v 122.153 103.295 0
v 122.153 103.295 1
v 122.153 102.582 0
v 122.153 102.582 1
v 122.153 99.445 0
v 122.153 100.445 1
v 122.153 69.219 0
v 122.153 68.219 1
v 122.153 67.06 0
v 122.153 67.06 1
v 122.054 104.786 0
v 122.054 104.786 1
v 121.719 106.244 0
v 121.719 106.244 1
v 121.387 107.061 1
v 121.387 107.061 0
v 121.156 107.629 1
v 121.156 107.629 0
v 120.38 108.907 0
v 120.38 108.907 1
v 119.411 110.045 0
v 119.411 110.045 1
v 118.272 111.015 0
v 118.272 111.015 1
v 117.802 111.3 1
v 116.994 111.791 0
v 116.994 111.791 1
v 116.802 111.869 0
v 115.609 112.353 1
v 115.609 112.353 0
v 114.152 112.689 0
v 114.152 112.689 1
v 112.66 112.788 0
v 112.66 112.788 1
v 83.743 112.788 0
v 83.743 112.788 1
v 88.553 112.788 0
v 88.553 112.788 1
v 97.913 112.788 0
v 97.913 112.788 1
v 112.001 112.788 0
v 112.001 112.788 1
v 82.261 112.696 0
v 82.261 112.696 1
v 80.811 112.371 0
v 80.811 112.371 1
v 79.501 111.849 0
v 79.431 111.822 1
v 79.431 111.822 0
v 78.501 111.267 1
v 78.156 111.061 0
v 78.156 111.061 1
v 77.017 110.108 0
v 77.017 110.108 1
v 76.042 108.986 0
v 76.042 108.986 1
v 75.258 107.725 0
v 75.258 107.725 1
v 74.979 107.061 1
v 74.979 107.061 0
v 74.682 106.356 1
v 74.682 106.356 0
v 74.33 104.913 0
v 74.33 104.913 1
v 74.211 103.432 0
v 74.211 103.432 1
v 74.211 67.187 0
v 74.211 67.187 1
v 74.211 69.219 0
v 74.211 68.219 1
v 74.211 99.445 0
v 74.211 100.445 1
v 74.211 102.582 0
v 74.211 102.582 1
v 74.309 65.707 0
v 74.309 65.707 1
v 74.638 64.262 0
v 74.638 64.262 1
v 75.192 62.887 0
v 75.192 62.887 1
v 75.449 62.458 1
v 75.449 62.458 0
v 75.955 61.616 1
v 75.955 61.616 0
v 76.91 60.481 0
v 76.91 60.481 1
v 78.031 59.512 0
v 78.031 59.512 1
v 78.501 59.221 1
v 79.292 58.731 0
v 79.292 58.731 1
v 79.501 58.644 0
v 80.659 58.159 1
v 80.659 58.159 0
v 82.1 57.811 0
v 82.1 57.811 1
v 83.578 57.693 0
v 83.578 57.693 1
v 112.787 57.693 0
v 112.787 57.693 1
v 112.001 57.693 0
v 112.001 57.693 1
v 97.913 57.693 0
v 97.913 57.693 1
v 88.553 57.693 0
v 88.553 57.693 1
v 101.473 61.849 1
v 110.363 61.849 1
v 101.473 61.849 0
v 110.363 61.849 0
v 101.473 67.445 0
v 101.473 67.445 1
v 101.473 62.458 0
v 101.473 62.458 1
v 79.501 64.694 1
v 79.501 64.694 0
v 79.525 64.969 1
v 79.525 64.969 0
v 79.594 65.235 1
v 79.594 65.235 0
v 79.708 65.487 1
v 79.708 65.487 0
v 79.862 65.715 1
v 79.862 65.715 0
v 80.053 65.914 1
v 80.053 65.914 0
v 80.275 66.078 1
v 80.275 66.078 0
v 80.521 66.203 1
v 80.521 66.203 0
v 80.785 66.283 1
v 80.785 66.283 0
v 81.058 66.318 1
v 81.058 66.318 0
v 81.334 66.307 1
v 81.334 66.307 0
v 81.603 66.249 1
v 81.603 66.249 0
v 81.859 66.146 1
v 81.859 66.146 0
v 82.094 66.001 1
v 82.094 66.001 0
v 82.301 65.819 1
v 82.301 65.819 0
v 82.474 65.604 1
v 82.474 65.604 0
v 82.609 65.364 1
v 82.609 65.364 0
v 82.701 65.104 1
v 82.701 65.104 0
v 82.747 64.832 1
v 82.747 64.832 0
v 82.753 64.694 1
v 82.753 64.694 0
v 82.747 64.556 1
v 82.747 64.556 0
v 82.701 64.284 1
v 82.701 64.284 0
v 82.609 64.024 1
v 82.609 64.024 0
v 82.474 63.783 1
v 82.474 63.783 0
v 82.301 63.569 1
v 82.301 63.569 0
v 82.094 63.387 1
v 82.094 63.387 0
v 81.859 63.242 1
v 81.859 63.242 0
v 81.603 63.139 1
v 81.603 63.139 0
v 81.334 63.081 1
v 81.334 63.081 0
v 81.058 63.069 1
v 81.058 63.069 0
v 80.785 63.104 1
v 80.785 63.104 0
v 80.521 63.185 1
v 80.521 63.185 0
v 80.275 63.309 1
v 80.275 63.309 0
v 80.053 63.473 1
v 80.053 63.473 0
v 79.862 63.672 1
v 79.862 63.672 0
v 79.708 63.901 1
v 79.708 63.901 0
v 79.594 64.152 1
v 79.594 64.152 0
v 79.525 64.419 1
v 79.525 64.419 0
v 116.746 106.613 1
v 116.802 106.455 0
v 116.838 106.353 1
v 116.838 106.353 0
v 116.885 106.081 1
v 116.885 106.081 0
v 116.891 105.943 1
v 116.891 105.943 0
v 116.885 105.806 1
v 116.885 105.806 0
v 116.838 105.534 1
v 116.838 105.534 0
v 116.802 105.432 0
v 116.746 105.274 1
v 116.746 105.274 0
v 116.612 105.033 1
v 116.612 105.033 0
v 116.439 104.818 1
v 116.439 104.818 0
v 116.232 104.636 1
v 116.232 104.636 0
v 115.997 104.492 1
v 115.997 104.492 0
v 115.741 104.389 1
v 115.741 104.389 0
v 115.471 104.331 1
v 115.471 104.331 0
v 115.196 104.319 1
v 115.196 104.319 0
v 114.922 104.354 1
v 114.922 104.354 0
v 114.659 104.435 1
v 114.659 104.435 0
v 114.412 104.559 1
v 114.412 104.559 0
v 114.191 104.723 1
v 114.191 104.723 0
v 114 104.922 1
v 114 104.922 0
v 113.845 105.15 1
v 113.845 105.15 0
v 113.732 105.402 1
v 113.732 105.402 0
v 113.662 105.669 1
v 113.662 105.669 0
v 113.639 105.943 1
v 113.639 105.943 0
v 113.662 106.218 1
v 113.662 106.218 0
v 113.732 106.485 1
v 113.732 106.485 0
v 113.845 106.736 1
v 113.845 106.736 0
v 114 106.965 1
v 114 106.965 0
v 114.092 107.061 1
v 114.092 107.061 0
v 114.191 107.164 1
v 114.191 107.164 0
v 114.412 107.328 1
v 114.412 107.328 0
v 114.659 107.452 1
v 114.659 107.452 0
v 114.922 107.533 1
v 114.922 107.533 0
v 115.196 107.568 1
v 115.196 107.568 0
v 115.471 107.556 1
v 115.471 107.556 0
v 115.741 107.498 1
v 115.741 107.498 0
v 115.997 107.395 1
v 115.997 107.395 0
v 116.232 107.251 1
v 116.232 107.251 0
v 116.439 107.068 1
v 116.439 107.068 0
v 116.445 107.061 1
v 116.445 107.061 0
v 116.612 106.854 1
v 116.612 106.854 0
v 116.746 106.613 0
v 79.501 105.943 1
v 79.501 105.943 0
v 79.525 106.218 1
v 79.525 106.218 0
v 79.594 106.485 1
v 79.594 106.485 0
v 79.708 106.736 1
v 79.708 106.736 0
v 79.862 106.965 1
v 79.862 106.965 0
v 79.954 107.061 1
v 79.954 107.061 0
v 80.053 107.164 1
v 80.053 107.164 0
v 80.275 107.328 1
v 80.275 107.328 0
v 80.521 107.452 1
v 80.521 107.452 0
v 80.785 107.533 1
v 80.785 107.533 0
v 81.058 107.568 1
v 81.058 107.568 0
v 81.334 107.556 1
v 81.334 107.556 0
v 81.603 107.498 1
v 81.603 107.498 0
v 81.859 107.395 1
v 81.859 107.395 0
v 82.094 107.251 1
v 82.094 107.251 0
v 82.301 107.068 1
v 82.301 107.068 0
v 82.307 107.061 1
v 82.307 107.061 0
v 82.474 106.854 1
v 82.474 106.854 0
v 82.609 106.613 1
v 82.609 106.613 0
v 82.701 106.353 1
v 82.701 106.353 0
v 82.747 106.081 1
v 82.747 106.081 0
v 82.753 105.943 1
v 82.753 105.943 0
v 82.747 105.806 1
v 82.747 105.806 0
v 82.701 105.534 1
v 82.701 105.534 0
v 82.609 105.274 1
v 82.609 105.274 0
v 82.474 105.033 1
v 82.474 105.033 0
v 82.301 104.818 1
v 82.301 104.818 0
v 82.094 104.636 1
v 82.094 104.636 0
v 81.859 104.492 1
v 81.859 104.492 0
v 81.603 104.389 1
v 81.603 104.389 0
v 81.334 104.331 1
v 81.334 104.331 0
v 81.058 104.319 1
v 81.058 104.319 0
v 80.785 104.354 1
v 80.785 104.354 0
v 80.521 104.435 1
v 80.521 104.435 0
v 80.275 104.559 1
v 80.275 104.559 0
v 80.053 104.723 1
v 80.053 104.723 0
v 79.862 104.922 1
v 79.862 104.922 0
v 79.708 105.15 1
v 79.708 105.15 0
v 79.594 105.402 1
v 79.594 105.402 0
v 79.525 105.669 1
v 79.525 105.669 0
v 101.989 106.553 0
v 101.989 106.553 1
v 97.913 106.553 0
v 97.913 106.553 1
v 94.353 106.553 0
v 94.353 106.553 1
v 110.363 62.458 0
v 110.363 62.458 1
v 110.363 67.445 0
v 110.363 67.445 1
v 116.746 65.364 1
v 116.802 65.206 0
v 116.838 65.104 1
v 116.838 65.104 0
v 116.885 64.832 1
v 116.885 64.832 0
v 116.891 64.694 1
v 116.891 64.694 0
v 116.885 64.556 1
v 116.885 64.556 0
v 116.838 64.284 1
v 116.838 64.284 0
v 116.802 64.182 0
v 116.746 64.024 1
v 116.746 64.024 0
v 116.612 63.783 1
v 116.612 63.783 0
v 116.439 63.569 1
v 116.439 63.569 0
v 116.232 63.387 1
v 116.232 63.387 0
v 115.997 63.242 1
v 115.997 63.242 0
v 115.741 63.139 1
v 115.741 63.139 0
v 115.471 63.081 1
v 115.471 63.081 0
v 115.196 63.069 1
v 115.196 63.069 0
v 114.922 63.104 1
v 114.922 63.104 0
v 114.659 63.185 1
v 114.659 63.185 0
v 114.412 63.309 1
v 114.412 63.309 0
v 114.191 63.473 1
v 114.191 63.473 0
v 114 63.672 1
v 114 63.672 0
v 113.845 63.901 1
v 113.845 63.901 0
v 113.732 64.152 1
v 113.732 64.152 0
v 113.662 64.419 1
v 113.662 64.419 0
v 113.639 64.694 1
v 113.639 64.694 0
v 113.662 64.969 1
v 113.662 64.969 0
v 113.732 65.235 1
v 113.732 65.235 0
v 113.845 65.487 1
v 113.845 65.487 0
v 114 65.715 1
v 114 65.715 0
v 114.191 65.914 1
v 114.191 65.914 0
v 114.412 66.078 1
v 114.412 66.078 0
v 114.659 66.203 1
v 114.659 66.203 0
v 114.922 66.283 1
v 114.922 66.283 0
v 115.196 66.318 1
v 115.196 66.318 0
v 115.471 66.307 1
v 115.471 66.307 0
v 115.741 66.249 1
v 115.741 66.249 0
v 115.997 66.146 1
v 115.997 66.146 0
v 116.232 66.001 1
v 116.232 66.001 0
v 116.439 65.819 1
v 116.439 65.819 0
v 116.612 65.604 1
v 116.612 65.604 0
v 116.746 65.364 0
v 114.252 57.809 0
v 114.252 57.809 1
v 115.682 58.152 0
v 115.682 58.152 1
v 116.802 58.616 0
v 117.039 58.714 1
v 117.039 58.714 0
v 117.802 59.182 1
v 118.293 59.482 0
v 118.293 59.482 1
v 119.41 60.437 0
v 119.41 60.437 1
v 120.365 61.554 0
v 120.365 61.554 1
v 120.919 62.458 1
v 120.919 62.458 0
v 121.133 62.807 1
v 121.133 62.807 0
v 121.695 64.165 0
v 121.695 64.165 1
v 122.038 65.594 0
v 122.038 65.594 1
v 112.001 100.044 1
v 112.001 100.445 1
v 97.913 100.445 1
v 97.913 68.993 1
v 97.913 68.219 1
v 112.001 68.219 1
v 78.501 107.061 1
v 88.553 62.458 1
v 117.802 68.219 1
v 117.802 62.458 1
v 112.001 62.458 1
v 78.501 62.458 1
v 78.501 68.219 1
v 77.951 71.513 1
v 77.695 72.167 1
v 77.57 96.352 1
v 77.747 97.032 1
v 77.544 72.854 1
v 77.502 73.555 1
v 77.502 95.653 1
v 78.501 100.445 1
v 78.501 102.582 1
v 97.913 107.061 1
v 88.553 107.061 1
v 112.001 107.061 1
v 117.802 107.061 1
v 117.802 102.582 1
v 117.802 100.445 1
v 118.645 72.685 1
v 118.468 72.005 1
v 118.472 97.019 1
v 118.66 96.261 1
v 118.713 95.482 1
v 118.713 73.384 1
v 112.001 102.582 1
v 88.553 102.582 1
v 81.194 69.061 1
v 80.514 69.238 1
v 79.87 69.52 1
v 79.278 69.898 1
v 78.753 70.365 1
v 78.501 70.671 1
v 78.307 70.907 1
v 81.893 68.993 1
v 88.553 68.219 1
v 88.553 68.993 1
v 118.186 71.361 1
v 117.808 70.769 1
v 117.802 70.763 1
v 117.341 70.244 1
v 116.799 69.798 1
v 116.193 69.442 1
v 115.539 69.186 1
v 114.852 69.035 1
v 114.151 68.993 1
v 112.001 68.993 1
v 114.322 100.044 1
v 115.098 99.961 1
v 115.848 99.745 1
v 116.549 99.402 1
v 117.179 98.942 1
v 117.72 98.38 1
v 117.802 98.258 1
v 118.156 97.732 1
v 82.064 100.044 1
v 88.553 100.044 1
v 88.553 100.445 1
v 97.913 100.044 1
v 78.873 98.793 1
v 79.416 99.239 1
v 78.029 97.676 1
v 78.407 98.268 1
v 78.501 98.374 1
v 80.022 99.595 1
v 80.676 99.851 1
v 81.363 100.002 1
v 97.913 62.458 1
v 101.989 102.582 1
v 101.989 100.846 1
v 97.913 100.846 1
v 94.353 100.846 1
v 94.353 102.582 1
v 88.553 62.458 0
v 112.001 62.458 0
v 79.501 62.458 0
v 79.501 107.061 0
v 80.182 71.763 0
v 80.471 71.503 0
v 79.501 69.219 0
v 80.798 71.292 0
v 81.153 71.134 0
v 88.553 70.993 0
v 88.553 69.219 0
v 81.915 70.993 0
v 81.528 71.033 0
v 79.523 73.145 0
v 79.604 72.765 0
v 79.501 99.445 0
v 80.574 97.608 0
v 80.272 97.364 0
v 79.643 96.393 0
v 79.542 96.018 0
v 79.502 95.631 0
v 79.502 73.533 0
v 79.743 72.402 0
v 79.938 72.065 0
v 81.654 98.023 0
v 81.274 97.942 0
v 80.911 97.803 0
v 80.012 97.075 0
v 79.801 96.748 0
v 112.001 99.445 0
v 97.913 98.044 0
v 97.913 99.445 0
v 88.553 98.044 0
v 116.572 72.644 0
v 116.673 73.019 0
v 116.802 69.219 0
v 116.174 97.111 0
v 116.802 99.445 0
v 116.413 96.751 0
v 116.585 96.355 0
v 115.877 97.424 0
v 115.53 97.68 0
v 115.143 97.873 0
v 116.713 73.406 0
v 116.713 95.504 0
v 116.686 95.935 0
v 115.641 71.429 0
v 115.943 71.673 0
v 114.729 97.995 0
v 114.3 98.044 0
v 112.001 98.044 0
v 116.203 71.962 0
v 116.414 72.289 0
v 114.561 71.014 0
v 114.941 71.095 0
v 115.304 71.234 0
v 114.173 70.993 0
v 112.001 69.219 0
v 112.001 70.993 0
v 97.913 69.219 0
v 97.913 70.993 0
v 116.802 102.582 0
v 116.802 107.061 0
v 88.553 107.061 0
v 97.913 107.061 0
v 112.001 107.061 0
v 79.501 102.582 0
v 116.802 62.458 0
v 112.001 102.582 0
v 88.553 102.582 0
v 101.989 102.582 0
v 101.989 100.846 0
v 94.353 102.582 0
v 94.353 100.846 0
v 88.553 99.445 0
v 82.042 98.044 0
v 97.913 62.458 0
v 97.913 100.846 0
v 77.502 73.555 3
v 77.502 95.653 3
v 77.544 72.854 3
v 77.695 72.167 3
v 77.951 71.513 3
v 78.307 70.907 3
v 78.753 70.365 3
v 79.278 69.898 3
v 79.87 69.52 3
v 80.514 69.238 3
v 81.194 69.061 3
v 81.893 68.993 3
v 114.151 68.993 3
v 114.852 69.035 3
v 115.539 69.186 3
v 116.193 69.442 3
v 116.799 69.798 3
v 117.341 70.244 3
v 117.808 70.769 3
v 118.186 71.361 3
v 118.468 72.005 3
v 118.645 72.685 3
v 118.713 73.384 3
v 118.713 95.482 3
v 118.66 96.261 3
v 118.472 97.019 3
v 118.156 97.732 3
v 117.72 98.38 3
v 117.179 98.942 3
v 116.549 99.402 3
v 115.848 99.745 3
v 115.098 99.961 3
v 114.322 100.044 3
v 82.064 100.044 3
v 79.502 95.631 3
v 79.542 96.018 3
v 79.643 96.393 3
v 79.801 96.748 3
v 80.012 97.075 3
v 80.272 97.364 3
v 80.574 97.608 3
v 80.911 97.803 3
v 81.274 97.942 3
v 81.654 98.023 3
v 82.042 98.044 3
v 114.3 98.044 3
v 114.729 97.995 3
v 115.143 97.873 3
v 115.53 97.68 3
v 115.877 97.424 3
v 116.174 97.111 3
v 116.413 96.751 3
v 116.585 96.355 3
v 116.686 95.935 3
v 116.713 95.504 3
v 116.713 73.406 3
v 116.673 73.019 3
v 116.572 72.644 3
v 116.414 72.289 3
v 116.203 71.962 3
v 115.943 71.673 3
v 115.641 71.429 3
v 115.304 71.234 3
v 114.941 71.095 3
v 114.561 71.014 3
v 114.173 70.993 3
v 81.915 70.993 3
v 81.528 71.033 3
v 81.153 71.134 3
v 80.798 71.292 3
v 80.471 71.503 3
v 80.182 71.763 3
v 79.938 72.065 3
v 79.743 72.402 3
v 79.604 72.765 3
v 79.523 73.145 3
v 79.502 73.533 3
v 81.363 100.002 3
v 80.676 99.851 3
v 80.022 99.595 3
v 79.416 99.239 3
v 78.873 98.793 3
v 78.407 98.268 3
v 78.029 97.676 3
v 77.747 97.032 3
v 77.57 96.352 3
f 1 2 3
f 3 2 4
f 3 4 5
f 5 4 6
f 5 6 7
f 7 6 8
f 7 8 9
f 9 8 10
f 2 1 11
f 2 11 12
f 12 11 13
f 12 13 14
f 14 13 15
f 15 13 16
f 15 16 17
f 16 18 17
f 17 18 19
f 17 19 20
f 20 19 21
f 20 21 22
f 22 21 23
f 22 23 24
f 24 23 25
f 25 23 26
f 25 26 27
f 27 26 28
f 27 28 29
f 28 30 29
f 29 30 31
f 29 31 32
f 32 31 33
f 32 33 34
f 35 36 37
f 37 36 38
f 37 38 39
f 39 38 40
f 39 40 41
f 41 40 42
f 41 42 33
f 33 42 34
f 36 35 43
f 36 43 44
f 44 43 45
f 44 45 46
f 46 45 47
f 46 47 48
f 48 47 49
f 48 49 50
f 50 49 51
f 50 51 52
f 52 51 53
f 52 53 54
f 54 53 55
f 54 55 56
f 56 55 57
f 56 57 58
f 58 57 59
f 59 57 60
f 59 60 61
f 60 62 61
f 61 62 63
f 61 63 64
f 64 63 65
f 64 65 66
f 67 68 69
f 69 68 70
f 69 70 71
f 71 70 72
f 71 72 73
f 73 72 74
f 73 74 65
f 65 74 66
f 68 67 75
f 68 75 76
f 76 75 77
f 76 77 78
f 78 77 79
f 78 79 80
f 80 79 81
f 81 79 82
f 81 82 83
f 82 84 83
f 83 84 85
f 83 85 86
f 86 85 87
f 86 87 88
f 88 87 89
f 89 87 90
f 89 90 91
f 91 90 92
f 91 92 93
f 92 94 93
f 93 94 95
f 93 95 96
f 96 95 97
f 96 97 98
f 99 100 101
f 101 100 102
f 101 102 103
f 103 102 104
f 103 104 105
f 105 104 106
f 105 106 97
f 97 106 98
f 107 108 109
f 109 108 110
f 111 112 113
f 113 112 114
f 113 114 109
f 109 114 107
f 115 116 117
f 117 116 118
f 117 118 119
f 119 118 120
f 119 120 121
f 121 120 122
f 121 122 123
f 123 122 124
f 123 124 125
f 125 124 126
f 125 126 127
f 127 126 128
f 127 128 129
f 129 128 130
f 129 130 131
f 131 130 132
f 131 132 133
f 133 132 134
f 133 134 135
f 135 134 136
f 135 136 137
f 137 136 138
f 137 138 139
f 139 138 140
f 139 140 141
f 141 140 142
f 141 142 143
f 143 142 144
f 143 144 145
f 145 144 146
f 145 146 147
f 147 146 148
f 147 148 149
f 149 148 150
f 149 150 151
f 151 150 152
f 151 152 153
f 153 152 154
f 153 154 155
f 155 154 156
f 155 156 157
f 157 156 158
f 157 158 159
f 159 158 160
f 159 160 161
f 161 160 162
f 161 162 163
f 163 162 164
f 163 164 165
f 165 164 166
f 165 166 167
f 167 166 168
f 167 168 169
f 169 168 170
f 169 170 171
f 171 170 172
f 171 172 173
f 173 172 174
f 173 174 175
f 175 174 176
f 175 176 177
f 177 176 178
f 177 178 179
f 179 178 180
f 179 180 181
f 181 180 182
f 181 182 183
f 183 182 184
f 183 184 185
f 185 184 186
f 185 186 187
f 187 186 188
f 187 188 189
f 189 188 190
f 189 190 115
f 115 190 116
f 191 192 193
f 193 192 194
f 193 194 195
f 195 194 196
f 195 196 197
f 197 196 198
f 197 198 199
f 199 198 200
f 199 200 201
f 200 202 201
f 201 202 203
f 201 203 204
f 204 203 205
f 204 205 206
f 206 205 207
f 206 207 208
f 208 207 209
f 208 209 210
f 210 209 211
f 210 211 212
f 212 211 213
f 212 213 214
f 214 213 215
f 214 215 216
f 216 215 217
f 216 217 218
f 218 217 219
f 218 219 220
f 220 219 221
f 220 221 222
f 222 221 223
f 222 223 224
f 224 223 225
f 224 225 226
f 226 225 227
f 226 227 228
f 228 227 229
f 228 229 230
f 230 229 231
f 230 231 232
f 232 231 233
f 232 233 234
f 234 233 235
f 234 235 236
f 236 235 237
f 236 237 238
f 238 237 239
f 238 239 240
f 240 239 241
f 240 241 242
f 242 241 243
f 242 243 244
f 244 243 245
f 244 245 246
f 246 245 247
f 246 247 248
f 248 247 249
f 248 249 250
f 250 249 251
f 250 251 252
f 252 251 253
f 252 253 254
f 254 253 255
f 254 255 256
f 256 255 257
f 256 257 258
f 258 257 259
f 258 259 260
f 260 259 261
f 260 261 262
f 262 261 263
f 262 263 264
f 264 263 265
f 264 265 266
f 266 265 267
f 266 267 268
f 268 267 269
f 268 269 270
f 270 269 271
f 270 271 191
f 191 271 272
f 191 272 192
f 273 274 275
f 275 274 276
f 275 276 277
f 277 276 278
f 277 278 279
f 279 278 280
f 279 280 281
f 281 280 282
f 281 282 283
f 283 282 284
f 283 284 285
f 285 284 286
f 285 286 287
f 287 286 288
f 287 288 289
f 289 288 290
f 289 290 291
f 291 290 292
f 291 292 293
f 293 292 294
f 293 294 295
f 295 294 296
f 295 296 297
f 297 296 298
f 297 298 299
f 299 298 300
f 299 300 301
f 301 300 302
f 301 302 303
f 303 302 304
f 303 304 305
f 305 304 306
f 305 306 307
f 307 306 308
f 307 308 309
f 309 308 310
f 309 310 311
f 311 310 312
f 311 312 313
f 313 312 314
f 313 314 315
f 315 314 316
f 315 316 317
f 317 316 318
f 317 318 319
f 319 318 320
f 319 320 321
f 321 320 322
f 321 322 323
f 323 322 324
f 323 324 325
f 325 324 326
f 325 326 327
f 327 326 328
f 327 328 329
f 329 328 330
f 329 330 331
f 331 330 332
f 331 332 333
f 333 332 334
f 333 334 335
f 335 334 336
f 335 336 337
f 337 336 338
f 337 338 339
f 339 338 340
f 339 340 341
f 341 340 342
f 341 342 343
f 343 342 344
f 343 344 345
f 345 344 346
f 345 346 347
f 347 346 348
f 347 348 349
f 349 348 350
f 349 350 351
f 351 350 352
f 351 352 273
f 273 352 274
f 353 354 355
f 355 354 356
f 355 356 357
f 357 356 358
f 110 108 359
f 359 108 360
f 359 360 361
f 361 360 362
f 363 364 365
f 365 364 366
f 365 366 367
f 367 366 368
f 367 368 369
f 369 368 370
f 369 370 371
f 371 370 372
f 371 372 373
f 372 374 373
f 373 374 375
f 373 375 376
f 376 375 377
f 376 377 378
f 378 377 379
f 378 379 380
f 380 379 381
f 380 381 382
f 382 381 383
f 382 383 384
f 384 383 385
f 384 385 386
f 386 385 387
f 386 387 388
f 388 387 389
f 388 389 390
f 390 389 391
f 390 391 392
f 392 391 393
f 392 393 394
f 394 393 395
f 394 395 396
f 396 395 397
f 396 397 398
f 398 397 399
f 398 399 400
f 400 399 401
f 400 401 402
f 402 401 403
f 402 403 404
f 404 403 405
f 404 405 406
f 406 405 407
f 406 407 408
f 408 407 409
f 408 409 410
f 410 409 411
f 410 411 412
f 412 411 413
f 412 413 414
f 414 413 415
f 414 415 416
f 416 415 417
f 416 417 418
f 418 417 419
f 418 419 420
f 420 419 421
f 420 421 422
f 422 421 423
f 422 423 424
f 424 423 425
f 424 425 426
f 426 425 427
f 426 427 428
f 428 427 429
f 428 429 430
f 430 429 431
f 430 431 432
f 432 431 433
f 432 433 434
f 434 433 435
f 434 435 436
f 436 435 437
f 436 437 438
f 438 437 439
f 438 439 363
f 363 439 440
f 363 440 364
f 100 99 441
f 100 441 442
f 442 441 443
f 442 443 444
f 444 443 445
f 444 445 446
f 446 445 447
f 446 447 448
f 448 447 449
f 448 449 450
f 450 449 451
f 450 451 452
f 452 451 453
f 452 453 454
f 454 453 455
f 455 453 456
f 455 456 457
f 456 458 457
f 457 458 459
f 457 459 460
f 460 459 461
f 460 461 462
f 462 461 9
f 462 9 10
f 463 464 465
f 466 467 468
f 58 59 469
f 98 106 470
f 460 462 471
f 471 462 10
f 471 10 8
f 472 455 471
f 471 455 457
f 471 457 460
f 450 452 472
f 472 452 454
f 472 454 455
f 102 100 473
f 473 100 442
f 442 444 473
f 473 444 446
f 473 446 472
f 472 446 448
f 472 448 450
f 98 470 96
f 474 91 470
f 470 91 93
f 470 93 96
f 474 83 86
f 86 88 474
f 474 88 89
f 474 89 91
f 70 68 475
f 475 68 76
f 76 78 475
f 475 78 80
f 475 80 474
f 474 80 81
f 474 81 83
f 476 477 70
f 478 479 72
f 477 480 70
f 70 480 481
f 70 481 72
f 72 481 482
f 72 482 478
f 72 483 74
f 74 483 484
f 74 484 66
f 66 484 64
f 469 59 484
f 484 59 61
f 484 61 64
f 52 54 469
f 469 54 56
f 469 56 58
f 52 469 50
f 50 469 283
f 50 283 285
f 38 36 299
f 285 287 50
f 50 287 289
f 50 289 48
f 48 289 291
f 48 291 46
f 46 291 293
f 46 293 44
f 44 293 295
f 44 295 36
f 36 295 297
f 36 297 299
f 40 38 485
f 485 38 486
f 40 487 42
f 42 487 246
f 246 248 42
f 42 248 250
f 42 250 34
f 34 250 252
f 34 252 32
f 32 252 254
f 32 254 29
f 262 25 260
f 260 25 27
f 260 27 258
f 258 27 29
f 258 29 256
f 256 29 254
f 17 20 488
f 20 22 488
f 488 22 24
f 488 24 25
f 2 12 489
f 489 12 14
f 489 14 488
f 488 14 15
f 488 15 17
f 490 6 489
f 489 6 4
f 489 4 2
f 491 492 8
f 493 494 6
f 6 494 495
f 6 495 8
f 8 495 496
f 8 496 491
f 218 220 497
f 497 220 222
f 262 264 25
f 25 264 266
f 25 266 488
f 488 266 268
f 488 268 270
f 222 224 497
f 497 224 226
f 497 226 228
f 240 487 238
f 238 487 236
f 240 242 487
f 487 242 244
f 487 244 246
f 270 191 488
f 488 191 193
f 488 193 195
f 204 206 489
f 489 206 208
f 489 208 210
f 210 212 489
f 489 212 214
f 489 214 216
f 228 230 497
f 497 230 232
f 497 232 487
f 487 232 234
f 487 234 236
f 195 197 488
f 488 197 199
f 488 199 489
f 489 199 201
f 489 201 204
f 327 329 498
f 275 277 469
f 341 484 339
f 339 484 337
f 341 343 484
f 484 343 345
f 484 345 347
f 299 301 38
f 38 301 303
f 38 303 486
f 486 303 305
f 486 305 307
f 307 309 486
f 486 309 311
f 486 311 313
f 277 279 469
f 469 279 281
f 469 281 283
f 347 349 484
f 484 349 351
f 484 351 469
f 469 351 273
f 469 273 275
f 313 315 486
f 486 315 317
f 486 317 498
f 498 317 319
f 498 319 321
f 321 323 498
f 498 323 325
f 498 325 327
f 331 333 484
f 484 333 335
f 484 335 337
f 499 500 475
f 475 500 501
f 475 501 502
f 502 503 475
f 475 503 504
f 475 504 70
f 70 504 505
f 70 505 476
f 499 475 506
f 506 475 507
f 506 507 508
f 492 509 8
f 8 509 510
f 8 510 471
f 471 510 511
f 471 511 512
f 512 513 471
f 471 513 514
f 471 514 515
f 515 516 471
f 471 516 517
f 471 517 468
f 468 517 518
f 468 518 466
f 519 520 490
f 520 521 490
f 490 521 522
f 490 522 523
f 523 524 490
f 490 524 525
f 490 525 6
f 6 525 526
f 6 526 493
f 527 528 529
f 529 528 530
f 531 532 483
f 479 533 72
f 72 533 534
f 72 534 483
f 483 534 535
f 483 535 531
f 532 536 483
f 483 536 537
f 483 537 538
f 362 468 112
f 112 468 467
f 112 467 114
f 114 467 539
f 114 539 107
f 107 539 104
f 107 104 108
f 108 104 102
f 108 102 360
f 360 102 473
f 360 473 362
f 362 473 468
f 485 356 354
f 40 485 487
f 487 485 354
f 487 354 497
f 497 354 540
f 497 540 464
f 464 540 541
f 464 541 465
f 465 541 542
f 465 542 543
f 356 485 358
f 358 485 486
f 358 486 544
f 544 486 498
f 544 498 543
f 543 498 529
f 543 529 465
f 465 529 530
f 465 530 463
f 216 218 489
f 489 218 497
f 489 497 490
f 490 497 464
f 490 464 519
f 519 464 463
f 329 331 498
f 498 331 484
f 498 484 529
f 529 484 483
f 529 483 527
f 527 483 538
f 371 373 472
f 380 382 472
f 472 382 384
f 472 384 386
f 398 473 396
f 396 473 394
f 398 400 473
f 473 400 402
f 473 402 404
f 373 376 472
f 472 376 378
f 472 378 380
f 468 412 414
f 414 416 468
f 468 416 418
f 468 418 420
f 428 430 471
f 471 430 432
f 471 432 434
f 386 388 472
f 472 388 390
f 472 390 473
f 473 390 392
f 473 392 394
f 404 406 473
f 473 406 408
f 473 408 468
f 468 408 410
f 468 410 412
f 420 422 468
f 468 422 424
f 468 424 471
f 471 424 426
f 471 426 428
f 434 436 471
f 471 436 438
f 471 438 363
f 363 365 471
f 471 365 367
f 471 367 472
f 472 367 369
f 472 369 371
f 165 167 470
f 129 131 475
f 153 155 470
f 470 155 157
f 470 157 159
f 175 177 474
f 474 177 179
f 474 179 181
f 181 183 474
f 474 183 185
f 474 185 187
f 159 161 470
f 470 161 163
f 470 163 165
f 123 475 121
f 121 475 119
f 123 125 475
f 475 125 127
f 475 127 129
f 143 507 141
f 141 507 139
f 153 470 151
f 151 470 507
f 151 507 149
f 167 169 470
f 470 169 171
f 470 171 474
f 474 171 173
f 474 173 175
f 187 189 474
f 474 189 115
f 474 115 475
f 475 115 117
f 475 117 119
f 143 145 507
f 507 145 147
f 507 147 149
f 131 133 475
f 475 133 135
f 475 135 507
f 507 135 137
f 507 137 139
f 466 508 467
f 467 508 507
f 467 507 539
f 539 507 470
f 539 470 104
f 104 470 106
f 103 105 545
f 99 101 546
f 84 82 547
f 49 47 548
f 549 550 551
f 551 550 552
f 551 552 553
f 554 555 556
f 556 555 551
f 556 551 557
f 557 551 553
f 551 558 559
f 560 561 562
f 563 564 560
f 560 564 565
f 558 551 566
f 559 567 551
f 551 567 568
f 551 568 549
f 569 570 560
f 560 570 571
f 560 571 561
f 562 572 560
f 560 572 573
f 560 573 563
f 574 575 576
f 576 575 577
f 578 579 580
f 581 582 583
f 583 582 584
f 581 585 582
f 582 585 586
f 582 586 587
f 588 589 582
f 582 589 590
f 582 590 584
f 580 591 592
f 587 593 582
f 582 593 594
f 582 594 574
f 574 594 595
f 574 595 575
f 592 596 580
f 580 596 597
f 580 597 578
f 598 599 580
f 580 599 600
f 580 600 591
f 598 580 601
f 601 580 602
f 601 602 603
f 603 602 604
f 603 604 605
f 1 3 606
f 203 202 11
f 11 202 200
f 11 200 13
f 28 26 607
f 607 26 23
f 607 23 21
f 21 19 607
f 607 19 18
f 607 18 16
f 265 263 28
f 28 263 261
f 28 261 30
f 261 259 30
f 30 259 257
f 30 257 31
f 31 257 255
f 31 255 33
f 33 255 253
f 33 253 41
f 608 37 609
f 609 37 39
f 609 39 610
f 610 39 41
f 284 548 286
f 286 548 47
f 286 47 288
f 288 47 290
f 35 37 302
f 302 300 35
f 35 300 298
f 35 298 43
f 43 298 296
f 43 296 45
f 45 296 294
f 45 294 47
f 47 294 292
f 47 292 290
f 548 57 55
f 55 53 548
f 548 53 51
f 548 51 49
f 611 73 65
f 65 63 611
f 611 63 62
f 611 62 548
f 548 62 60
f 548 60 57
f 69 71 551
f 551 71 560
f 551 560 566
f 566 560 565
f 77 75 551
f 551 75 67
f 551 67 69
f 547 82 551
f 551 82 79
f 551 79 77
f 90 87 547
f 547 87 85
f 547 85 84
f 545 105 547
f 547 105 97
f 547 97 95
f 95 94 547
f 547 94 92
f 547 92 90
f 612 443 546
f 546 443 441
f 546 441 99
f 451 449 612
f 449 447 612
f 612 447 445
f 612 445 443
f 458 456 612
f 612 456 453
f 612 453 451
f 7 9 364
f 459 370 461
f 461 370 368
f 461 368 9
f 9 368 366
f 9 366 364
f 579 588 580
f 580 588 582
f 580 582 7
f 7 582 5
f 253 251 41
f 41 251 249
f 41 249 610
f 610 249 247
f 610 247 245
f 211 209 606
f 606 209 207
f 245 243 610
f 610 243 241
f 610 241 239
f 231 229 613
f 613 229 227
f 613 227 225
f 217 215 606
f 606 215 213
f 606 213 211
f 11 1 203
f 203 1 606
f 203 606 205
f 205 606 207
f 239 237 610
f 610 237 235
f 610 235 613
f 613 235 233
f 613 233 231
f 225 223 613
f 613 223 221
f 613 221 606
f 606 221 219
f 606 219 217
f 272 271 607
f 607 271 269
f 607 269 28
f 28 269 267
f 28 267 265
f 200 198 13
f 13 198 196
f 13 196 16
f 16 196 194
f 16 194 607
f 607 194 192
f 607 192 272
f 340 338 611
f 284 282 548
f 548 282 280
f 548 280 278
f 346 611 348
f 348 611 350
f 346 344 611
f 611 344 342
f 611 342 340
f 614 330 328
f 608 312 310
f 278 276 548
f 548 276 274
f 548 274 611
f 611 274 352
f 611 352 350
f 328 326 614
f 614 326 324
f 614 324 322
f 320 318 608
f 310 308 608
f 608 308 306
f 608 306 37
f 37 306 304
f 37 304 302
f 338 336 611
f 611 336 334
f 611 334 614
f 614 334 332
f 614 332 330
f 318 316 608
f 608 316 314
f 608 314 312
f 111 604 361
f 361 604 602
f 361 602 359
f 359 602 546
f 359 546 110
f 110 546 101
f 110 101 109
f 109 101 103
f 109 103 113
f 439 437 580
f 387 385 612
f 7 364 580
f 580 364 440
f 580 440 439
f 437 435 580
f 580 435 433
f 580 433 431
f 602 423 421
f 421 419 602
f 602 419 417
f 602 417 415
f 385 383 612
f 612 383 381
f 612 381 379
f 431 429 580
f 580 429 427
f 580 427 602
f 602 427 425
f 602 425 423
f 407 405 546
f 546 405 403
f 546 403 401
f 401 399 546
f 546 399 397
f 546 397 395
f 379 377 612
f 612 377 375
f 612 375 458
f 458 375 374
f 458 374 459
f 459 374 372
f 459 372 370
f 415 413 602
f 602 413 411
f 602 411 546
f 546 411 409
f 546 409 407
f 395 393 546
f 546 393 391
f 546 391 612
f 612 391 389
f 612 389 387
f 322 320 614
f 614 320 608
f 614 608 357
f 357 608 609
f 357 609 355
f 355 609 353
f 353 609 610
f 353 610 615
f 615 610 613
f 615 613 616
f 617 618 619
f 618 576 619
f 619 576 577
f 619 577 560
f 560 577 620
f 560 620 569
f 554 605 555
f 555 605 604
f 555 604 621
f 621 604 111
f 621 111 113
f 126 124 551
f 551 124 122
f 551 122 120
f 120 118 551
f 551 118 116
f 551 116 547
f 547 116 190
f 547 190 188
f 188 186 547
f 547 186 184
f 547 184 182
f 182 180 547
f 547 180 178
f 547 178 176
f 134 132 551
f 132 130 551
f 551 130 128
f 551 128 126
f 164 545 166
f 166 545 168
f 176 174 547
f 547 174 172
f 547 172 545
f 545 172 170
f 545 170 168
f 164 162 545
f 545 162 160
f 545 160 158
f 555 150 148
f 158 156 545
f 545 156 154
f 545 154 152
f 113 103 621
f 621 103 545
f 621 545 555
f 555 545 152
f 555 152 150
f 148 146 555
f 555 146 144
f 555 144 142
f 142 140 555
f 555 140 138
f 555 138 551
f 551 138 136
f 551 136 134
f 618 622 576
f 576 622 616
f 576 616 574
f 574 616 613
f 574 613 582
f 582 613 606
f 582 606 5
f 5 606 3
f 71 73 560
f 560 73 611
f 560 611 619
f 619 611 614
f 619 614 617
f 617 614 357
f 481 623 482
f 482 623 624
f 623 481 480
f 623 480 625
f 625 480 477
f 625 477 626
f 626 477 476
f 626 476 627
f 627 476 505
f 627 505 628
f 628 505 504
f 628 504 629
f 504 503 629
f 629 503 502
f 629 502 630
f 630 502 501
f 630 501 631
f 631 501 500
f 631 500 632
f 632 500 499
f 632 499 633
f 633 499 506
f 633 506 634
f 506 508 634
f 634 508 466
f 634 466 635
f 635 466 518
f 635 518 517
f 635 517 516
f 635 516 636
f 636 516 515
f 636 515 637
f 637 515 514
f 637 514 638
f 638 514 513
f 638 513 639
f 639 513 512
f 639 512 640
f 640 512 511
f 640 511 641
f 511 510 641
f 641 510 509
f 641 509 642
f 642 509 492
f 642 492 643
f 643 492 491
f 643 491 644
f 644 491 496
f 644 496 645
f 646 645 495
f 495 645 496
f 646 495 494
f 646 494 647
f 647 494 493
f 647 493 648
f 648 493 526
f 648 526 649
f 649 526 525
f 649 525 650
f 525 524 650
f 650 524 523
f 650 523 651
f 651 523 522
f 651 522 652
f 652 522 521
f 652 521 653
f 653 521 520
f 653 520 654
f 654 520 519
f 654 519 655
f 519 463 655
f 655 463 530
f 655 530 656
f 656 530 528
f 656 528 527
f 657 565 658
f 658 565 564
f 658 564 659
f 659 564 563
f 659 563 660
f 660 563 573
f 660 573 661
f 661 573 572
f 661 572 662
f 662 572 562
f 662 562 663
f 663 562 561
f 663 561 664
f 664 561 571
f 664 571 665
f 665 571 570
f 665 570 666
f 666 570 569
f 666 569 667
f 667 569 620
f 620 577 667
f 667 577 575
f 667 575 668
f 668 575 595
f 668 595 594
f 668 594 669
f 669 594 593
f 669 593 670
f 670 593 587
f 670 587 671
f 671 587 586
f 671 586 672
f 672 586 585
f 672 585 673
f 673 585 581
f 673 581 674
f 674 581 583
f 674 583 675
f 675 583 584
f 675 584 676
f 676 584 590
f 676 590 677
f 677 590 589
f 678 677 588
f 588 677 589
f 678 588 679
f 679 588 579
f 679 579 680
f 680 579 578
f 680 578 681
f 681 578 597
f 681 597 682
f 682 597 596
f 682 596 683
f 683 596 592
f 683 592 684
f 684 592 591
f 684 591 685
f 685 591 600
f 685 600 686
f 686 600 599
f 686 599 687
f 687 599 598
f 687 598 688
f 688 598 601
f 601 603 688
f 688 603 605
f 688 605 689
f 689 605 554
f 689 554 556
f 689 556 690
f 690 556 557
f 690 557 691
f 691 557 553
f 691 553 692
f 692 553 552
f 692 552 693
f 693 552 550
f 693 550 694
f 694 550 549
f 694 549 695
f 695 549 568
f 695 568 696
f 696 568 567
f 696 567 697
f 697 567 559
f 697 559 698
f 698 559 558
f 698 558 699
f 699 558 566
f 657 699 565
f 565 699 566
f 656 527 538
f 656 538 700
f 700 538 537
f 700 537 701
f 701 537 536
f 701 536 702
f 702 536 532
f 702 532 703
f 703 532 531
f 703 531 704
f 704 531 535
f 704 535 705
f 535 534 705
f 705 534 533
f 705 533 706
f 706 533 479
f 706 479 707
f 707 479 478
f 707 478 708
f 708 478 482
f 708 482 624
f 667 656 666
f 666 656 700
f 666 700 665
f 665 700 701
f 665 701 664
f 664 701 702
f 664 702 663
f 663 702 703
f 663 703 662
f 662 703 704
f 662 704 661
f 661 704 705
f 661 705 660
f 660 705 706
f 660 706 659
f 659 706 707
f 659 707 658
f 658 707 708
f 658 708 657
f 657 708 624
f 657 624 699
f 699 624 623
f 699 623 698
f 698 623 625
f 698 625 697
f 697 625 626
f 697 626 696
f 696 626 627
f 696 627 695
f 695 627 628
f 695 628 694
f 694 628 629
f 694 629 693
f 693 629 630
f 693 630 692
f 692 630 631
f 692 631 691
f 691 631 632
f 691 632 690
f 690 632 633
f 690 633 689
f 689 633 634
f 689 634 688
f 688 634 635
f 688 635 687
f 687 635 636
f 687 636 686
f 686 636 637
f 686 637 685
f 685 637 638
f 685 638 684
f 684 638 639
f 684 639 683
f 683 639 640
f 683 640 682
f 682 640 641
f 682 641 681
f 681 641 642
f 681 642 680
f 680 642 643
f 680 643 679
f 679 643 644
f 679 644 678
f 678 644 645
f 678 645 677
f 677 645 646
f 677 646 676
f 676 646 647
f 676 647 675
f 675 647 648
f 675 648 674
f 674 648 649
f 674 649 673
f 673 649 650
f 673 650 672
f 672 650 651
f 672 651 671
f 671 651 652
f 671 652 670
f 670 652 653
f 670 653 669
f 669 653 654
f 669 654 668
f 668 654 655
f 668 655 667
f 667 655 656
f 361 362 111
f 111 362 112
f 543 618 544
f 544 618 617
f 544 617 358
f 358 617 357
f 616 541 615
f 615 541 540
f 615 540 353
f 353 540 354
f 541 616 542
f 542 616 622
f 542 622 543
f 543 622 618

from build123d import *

# Parameters (mm, degrees)
MODEL_R             = 1.62599878
MODEL_W             = 8.89
MODEL_H             = 6.096
EXTRUDE_1_DEPTH     = 1
EXTRUDE_2_DEPTH     = 3
SKETCH_1_W          = 8.89
SKETCH_1_H          = 1
EXTRUDE_3_DEPTH     = 0.5
SKETCH_2_W          = 1
SKETCH_2_H          = 5.207
EXTRUDE_4_DEPTH     = 0.5
SKETCH_3_W          = 1
SKETCH_3_H          = 5.207
EXTRUDE_5_DEPTH     = 0.5
SKETCH_4_W          = 7.636
SKETCH_4_H          = 1
CUT_EXTRUDE_1_DEPTH = 0.5


with BuildPart() as part:
    # Model → 凸台-拉伸1 (new body)
    with BuildSketch(Plane.XY):
        with BuildLine():
            ThreePointArc((112.78719886, 57.69339998), (119.410096357, 60.436638183), (122.15333456, 67.05953568))
            Line((122.15333456, 67.05953568), (122.15333456, 103.29453306))
            ThreePointArc((122.15333456, 103.29453306), (119.410664993, 110.045001733), (112.66019632, 112.7876713))
            Line((112.66019632, 112.7876713), (83.7431777, 112.7876713))
            ThreePointArc((83.7431777, 112.7876713), (77.016609687, 110.107501601), (74.21120032, 103.43219598))
            Line((74.21120032, 103.43219598), (74.21120032, 67.1865433))
            ThreePointArc((74.21120032, 67.1865433), (76.909728462, 60.481379821), (83.57819454, 57.69339998))
            Line((83.57819454, 57.69339998), (112.78719886, 57.69339998))
        make_face()
        with Locations((81.12722408, 64.6938)):
            Circle(MODEL_R, mode=Mode.SUBTRACT)
        with BuildLine():
            ThreePointArc((81.893126204, 68.992997458), (78.752768, 70.36450237), (77.502, 73.554871436))
            Line((77.502, 73.554871436), (77.502, 95.652871369))
            ThreePointArc((77.502, 95.652871369), (78.87350371, 98.793228241), (82.063870472, 100.043997462))
            Line((82.063870472, 100.043997462), (114.321868602, 100.044000002))
            ThreePointArc((114.321868602, 100.044000002), (117.462140632, 98.672585067), (118.713, 95.482375327))
            Line((118.713, 95.482375327), (118.713, 73.384126091))
            ThreePointArc((118.713, 73.384126091), (117.34149629, 70.243769219), (114.151129528, 68.992999998))
            Line((114.151129528, 68.992999998), (81.893126204, 68.992997458))
        make_face(mode=Mode.SUBTRACT)
        with Locations((105.918, 64.897)):
            Rectangle(MODEL_W, MODEL_H, mode=Mode.SUBTRACT)
        with Locations((115.26482408, 64.6938)):
            Circle(MODEL_R, mode=Mode.SUBTRACT)
        with Locations((81.12722408, 105.9434)):
            Circle(MODEL_R, mode=Mode.SUBTRACT)
        Polygon((93.853, 101.346), (93.853, 106.553), (94.615, 106.553), (102.489, 106.553), (102.489, 101.346), align=None, mode=Mode.SUBTRACT)
        with Locations((115.26482408, 105.9434)):
            Circle(MODEL_R, mode=Mode.SUBTRACT)
    extrude(amount=EXTRUDE_1_DEPTH)

    # Model<3> → 凸台-拉伸2 (add)
    with BuildSketch(Plane.XY):
        with BuildLine():
            Line((77.502, 95.652871369), (77.502, 73.554871436))
            ThreePointArc((77.502, 73.554871436), (78.752768, 70.36450237), (81.893126204, 68.992997458))
            Line((81.893126204, 68.992997458), (114.151129528, 68.992999998))
            ThreePointArc((114.151129528, 68.992999998), (117.34149629, 70.243769219), (118.713, 73.384126091))
            Line((118.713, 73.384126091), (118.713, 95.482375327))
            ThreePointArc((118.713, 95.482375327), (117.462140632, 98.672585067), (114.321868602, 100.044000002))
            Line((114.321868602, 100.044000002), (82.063870472, 100.043997462))
            ThreePointArc((82.063870472, 100.043997462), (78.87350371, 98.793228241), (77.502, 95.652871369))
        make_face()
        with BuildLine():
            ThreePointArc((81.91499746, 70.99299746), (80.182446941, 71.763250556), (79.502, 73.533))
            Line((79.502, 73.533), (79.502, 95.631))
            ThreePointArc((79.502, 95.631), (80.272252197, 97.363549602), (82.042, 98.04399746))
            Line((82.042, 98.04399746), (114.29999746, 98.044))
            ThreePointArc((114.29999746, 98.044), (116.032484318, 97.273814255), (116.713, 95.50418288))
            Line((116.713, 95.50418288), (116.713, 73.40599746))
            ThreePointArc((116.713, 73.40599746), (115.942747803, 71.673447858), (114.173, 70.993))
            Line((114.173, 70.993), (81.91499746, 70.99299746))
        make_face(mode=Mode.SUBTRACT)
    extrude(amount=EXTRUDE_2_DEPTH)

    # 草图1 → 凸台-拉伸3 (add)
    with BuildSketch(Plane.XZ.offset(-67.945)):
        with Locations((105.918, 0.5)):
            Rectangle(SKETCH_1_W, SKETCH_1_H)
    extrude(amount=EXTRUDE_3_DEPTH)

    # 草图2 → 凸台-拉伸4 (add)
    with BuildSketch(Plane(origin=(93.853, 0, 0), x_dir=(0, 0, -1), z_dir=(1, 0, 0))):
        with Locations((-0.5, 103.9495)):
            Rectangle(SKETCH_2_W, SKETCH_2_H)
    extrude(amount=EXTRUDE_4_DEPTH)

    # 草图3 → 凸台-拉伸5 (add)
    with BuildSketch(Plane.ZY.offset(-102.489)):
        with Locations((0.5, 103.9495)):
            Rectangle(SKETCH_3_W, SKETCH_3_H)
    extrude(amount=EXTRUDE_5_DEPTH)

    # 草图4 → 切除-拉伸1 (cut)
    with BuildSketch(Plane(origin=(0, 101.346, 0), x_dir=(1, 0, 0), z_dir=(0, 1, 0))):
        with Locations((98.171, -0.5)):
            Rectangle(SKETCH_4_W, SKETCH_4_H)
    extrude(amount=-CUT_EXTRUDE_1_DEPTH, mode=Mode.SUBTRACT)


solid = part.part
